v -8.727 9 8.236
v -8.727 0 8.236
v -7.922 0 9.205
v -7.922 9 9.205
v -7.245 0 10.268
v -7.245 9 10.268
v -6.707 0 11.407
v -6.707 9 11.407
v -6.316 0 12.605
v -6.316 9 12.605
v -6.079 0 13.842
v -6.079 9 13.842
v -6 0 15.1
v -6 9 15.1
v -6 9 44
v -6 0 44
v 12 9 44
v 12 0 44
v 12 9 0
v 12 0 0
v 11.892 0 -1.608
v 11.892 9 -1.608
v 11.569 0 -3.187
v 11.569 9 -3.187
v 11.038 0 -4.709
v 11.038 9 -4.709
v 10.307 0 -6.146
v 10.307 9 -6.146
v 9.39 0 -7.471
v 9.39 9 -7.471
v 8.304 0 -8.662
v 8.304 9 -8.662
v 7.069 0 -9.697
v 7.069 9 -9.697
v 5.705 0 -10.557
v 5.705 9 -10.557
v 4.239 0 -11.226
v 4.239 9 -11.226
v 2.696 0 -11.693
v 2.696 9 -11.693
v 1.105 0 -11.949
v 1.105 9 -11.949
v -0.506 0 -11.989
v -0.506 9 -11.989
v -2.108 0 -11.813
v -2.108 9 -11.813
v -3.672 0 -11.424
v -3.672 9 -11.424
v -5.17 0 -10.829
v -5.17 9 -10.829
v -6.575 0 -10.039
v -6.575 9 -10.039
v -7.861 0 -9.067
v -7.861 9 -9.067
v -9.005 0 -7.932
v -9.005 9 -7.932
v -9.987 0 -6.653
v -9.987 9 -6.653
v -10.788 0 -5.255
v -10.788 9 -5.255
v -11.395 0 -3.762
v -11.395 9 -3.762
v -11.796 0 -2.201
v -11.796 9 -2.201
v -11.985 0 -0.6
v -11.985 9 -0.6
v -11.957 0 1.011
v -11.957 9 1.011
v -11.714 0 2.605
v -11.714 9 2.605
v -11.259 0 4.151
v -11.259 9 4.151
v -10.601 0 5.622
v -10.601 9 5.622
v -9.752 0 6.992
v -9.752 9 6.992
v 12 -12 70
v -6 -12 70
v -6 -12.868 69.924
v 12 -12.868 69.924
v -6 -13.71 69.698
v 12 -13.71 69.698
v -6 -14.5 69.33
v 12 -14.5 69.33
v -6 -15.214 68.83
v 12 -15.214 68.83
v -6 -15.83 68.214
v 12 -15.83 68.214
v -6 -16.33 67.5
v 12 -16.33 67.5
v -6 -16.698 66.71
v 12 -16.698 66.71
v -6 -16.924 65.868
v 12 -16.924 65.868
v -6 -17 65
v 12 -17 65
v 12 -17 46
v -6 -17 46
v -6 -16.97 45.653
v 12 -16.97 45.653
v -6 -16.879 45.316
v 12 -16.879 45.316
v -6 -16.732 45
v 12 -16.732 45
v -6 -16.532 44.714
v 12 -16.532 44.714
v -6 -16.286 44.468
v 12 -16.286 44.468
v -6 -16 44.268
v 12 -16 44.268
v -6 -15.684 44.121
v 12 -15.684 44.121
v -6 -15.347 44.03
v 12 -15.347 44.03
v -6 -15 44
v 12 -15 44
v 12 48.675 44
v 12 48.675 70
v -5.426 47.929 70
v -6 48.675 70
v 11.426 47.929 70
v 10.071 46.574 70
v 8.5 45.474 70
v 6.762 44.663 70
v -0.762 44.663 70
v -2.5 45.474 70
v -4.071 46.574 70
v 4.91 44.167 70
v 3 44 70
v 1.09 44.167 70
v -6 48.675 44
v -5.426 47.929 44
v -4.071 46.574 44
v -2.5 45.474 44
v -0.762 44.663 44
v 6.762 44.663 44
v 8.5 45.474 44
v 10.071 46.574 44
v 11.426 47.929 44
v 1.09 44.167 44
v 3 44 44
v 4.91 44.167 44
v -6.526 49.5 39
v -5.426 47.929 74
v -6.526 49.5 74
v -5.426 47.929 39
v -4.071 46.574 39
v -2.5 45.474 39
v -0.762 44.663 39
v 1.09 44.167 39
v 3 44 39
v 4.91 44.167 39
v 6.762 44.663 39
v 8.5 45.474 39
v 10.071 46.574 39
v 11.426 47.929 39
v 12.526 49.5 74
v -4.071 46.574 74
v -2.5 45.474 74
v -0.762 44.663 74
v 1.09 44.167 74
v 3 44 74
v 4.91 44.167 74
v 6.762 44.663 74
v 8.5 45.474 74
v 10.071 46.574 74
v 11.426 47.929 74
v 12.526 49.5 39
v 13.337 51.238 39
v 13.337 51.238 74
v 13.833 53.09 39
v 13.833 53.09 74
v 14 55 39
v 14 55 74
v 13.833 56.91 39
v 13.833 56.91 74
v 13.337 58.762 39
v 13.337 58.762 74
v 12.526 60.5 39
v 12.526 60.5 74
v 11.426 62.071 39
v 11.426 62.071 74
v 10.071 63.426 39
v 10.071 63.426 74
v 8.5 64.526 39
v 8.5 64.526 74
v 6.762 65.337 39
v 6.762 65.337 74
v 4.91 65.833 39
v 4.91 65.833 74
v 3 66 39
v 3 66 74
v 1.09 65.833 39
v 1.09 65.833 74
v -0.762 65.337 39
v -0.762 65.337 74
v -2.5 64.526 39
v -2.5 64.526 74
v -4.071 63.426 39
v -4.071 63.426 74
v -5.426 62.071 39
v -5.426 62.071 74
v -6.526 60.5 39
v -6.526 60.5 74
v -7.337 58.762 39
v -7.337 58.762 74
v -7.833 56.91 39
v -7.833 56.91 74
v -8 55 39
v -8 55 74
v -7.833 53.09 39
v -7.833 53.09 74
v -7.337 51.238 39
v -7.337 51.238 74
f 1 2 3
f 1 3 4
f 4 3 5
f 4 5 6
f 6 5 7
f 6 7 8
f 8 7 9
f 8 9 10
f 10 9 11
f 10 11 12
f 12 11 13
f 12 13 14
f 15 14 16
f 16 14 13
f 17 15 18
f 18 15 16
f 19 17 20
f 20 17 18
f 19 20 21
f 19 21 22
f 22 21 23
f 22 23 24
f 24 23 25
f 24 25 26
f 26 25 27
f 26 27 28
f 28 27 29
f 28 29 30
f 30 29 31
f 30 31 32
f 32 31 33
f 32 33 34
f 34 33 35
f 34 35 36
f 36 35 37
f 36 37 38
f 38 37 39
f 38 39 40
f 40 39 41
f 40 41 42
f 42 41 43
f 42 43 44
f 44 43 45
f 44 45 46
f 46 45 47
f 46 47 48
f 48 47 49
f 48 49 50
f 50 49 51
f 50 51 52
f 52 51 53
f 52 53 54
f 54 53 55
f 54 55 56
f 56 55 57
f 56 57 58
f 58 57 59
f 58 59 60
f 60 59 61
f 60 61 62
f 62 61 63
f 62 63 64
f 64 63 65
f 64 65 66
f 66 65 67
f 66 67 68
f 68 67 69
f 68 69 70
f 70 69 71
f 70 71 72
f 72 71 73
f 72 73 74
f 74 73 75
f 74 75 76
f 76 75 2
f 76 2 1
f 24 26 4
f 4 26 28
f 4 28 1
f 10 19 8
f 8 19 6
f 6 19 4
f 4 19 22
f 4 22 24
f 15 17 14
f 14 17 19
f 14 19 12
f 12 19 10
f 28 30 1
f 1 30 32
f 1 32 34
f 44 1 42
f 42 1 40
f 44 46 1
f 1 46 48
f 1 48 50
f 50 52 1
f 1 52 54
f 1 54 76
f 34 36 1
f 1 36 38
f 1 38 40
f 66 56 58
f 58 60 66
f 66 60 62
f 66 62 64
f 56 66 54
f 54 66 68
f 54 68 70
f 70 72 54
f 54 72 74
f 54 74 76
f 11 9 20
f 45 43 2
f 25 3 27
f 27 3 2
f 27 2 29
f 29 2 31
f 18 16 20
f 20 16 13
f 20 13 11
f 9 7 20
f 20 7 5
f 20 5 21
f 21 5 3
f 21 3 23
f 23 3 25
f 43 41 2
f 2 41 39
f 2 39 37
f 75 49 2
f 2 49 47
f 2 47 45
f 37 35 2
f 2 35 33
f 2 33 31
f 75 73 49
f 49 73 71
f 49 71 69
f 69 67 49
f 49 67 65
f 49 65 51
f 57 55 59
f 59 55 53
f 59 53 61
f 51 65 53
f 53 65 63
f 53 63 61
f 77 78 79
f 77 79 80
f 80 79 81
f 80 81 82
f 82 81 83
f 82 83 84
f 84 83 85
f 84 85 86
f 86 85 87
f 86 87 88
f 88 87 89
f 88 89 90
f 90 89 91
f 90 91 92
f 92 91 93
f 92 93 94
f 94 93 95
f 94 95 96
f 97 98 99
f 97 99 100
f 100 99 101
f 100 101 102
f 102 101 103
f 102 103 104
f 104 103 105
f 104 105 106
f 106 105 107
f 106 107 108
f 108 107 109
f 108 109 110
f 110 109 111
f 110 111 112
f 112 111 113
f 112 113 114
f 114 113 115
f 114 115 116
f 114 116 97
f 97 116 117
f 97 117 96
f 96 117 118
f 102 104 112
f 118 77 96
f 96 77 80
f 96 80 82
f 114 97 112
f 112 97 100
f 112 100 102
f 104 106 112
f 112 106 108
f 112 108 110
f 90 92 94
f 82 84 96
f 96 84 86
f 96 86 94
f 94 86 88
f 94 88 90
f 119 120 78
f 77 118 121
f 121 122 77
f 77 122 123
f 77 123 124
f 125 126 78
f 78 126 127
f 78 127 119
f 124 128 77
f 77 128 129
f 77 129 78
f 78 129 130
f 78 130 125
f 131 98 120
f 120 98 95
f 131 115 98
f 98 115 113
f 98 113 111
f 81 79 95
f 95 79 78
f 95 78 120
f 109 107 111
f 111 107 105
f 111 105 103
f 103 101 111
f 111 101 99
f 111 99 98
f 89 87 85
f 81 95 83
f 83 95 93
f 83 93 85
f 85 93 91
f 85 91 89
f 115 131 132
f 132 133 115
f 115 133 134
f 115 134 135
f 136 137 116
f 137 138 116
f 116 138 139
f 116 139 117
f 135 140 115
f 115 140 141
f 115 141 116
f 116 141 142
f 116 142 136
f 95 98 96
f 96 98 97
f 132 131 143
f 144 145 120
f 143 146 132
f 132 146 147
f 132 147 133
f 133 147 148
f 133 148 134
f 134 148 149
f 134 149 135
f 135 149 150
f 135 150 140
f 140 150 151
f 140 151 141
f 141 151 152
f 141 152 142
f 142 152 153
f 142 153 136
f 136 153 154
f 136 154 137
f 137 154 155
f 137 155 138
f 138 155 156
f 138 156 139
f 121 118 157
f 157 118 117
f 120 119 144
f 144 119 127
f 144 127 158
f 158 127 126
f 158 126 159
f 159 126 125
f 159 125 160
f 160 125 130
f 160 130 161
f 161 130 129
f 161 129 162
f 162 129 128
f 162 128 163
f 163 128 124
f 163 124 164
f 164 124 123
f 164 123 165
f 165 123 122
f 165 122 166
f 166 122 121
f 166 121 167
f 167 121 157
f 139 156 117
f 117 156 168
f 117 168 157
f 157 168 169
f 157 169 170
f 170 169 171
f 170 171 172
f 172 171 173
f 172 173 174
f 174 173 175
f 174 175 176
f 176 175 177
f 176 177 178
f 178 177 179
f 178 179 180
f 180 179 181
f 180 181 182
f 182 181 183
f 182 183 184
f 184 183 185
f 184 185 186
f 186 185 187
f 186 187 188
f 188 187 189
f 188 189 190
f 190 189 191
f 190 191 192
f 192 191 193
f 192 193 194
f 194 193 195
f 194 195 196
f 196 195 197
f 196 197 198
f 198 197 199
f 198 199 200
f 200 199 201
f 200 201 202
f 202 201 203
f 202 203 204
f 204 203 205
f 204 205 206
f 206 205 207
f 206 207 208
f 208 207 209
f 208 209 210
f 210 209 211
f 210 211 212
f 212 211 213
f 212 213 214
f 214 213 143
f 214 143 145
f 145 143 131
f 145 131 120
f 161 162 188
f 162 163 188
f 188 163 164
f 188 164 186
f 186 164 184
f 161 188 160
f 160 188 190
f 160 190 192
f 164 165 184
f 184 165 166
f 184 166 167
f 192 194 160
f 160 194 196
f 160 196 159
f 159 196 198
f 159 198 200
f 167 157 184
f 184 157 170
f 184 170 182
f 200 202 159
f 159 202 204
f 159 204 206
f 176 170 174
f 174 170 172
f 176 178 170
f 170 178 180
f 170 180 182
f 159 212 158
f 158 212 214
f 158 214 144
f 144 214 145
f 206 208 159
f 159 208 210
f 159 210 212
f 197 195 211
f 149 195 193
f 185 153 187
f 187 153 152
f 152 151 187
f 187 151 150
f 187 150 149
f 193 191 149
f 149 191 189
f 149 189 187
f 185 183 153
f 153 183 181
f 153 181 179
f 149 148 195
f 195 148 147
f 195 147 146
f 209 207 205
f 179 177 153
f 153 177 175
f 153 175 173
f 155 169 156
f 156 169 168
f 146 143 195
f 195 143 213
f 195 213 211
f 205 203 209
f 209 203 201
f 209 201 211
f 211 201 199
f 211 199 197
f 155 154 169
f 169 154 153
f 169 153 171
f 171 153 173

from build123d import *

# Parameters (mm, degrees)
BOSS_EXTRUDE1_DEPTH      = 9
BOSS_EXTRUDE2_DEPTH      = 40
BOSS_EXTRUDE2_DEPTH_BACK = 26
SKETCH2_W                = 18
SKETCH2_H                = 26
FILLET2_R                = 2
FILLET3_R                = 5
BOSS_EXTRUDE3_DEPTH      = 5
BOSS_EXTRUDE3_DEPTH_BACK = 30
SKETCH3_R                = 11


with BuildPart() as part:
    # Sketch1 → Boss-Extrude1 (new body)
    with BuildSketch(Plane(origin=(0, 0, 0), x_dir=(1, 0, 0), z_dir=(0, 1, 0))):
        with BuildLine():
            Line((12, 0), (12, -44))
            Line((12, -44), (-6, -44))
            Line((-6, -44), (-6, -15.099668871))
            ThreePointArc((-6, -15.099668871), (-6.706796227, -11.406924141), (-8.727272727, -8.23618302))
            ThreePointArc((-8.727272727, -8.23618302), (-4.431293675, 11.151844527), (12, 0))
        make_face()
    extrude(amount=BOSS_EXTRUDE1_DEPTH)


with BuildPart() as body_2:
    # Sketch2 → Boss-Extrude2 (new, two sides: drawn at the far end of the back side and taken through both)
    with BuildSketch(Plane(origin=(0, 9, 0), x_dir=(1, 0, 0), z_dir=(0, 1, 0)).offset(-BOSS_EXTRUDE2_DEPTH_BACK)):
        with Locations((3, -57)):
            Rectangle(SKETCH2_W, SKETCH2_H)
    extrude(amount=BOSS_EXTRUDE2_DEPTH + BOSS_EXTRUDE2_DEPTH_BACK)

    # Fillet2
    fillet2_edges = [body_2.edges().sort_by_distance(p)[0] for p in [
        (3, -17, 44),
    ]]
    fillet(fillet2_edges, radius=FILLET2_R)

    # Fillet3
    fillet3_edges = [body_2.edges().sort_by_distance(p)[0] for p in [
        (3, -17, 70),
    ]]
    fillet(fillet3_edges, radius=FILLET3_R)

    # Sketch3 → Boss-Extrude3 (add, two sides: drawn at the far end of the back side and taken through both)
    with BuildSketch(Plane(origin=(0, 0, 44), x_dir=(-1, 0, 0), z_dir=(0, 0, -1)).offset(-BOSS_EXTRUDE3_DEPTH_BACK)):
        with Locations((-3, 55)):
            Circle(SKETCH3_R)
    extrude(amount=BOSS_EXTRUDE3_DEPTH + BOSS_EXTRUDE3_DEPTH_BACK)


solid = Compound([part.part, body_2.part])
